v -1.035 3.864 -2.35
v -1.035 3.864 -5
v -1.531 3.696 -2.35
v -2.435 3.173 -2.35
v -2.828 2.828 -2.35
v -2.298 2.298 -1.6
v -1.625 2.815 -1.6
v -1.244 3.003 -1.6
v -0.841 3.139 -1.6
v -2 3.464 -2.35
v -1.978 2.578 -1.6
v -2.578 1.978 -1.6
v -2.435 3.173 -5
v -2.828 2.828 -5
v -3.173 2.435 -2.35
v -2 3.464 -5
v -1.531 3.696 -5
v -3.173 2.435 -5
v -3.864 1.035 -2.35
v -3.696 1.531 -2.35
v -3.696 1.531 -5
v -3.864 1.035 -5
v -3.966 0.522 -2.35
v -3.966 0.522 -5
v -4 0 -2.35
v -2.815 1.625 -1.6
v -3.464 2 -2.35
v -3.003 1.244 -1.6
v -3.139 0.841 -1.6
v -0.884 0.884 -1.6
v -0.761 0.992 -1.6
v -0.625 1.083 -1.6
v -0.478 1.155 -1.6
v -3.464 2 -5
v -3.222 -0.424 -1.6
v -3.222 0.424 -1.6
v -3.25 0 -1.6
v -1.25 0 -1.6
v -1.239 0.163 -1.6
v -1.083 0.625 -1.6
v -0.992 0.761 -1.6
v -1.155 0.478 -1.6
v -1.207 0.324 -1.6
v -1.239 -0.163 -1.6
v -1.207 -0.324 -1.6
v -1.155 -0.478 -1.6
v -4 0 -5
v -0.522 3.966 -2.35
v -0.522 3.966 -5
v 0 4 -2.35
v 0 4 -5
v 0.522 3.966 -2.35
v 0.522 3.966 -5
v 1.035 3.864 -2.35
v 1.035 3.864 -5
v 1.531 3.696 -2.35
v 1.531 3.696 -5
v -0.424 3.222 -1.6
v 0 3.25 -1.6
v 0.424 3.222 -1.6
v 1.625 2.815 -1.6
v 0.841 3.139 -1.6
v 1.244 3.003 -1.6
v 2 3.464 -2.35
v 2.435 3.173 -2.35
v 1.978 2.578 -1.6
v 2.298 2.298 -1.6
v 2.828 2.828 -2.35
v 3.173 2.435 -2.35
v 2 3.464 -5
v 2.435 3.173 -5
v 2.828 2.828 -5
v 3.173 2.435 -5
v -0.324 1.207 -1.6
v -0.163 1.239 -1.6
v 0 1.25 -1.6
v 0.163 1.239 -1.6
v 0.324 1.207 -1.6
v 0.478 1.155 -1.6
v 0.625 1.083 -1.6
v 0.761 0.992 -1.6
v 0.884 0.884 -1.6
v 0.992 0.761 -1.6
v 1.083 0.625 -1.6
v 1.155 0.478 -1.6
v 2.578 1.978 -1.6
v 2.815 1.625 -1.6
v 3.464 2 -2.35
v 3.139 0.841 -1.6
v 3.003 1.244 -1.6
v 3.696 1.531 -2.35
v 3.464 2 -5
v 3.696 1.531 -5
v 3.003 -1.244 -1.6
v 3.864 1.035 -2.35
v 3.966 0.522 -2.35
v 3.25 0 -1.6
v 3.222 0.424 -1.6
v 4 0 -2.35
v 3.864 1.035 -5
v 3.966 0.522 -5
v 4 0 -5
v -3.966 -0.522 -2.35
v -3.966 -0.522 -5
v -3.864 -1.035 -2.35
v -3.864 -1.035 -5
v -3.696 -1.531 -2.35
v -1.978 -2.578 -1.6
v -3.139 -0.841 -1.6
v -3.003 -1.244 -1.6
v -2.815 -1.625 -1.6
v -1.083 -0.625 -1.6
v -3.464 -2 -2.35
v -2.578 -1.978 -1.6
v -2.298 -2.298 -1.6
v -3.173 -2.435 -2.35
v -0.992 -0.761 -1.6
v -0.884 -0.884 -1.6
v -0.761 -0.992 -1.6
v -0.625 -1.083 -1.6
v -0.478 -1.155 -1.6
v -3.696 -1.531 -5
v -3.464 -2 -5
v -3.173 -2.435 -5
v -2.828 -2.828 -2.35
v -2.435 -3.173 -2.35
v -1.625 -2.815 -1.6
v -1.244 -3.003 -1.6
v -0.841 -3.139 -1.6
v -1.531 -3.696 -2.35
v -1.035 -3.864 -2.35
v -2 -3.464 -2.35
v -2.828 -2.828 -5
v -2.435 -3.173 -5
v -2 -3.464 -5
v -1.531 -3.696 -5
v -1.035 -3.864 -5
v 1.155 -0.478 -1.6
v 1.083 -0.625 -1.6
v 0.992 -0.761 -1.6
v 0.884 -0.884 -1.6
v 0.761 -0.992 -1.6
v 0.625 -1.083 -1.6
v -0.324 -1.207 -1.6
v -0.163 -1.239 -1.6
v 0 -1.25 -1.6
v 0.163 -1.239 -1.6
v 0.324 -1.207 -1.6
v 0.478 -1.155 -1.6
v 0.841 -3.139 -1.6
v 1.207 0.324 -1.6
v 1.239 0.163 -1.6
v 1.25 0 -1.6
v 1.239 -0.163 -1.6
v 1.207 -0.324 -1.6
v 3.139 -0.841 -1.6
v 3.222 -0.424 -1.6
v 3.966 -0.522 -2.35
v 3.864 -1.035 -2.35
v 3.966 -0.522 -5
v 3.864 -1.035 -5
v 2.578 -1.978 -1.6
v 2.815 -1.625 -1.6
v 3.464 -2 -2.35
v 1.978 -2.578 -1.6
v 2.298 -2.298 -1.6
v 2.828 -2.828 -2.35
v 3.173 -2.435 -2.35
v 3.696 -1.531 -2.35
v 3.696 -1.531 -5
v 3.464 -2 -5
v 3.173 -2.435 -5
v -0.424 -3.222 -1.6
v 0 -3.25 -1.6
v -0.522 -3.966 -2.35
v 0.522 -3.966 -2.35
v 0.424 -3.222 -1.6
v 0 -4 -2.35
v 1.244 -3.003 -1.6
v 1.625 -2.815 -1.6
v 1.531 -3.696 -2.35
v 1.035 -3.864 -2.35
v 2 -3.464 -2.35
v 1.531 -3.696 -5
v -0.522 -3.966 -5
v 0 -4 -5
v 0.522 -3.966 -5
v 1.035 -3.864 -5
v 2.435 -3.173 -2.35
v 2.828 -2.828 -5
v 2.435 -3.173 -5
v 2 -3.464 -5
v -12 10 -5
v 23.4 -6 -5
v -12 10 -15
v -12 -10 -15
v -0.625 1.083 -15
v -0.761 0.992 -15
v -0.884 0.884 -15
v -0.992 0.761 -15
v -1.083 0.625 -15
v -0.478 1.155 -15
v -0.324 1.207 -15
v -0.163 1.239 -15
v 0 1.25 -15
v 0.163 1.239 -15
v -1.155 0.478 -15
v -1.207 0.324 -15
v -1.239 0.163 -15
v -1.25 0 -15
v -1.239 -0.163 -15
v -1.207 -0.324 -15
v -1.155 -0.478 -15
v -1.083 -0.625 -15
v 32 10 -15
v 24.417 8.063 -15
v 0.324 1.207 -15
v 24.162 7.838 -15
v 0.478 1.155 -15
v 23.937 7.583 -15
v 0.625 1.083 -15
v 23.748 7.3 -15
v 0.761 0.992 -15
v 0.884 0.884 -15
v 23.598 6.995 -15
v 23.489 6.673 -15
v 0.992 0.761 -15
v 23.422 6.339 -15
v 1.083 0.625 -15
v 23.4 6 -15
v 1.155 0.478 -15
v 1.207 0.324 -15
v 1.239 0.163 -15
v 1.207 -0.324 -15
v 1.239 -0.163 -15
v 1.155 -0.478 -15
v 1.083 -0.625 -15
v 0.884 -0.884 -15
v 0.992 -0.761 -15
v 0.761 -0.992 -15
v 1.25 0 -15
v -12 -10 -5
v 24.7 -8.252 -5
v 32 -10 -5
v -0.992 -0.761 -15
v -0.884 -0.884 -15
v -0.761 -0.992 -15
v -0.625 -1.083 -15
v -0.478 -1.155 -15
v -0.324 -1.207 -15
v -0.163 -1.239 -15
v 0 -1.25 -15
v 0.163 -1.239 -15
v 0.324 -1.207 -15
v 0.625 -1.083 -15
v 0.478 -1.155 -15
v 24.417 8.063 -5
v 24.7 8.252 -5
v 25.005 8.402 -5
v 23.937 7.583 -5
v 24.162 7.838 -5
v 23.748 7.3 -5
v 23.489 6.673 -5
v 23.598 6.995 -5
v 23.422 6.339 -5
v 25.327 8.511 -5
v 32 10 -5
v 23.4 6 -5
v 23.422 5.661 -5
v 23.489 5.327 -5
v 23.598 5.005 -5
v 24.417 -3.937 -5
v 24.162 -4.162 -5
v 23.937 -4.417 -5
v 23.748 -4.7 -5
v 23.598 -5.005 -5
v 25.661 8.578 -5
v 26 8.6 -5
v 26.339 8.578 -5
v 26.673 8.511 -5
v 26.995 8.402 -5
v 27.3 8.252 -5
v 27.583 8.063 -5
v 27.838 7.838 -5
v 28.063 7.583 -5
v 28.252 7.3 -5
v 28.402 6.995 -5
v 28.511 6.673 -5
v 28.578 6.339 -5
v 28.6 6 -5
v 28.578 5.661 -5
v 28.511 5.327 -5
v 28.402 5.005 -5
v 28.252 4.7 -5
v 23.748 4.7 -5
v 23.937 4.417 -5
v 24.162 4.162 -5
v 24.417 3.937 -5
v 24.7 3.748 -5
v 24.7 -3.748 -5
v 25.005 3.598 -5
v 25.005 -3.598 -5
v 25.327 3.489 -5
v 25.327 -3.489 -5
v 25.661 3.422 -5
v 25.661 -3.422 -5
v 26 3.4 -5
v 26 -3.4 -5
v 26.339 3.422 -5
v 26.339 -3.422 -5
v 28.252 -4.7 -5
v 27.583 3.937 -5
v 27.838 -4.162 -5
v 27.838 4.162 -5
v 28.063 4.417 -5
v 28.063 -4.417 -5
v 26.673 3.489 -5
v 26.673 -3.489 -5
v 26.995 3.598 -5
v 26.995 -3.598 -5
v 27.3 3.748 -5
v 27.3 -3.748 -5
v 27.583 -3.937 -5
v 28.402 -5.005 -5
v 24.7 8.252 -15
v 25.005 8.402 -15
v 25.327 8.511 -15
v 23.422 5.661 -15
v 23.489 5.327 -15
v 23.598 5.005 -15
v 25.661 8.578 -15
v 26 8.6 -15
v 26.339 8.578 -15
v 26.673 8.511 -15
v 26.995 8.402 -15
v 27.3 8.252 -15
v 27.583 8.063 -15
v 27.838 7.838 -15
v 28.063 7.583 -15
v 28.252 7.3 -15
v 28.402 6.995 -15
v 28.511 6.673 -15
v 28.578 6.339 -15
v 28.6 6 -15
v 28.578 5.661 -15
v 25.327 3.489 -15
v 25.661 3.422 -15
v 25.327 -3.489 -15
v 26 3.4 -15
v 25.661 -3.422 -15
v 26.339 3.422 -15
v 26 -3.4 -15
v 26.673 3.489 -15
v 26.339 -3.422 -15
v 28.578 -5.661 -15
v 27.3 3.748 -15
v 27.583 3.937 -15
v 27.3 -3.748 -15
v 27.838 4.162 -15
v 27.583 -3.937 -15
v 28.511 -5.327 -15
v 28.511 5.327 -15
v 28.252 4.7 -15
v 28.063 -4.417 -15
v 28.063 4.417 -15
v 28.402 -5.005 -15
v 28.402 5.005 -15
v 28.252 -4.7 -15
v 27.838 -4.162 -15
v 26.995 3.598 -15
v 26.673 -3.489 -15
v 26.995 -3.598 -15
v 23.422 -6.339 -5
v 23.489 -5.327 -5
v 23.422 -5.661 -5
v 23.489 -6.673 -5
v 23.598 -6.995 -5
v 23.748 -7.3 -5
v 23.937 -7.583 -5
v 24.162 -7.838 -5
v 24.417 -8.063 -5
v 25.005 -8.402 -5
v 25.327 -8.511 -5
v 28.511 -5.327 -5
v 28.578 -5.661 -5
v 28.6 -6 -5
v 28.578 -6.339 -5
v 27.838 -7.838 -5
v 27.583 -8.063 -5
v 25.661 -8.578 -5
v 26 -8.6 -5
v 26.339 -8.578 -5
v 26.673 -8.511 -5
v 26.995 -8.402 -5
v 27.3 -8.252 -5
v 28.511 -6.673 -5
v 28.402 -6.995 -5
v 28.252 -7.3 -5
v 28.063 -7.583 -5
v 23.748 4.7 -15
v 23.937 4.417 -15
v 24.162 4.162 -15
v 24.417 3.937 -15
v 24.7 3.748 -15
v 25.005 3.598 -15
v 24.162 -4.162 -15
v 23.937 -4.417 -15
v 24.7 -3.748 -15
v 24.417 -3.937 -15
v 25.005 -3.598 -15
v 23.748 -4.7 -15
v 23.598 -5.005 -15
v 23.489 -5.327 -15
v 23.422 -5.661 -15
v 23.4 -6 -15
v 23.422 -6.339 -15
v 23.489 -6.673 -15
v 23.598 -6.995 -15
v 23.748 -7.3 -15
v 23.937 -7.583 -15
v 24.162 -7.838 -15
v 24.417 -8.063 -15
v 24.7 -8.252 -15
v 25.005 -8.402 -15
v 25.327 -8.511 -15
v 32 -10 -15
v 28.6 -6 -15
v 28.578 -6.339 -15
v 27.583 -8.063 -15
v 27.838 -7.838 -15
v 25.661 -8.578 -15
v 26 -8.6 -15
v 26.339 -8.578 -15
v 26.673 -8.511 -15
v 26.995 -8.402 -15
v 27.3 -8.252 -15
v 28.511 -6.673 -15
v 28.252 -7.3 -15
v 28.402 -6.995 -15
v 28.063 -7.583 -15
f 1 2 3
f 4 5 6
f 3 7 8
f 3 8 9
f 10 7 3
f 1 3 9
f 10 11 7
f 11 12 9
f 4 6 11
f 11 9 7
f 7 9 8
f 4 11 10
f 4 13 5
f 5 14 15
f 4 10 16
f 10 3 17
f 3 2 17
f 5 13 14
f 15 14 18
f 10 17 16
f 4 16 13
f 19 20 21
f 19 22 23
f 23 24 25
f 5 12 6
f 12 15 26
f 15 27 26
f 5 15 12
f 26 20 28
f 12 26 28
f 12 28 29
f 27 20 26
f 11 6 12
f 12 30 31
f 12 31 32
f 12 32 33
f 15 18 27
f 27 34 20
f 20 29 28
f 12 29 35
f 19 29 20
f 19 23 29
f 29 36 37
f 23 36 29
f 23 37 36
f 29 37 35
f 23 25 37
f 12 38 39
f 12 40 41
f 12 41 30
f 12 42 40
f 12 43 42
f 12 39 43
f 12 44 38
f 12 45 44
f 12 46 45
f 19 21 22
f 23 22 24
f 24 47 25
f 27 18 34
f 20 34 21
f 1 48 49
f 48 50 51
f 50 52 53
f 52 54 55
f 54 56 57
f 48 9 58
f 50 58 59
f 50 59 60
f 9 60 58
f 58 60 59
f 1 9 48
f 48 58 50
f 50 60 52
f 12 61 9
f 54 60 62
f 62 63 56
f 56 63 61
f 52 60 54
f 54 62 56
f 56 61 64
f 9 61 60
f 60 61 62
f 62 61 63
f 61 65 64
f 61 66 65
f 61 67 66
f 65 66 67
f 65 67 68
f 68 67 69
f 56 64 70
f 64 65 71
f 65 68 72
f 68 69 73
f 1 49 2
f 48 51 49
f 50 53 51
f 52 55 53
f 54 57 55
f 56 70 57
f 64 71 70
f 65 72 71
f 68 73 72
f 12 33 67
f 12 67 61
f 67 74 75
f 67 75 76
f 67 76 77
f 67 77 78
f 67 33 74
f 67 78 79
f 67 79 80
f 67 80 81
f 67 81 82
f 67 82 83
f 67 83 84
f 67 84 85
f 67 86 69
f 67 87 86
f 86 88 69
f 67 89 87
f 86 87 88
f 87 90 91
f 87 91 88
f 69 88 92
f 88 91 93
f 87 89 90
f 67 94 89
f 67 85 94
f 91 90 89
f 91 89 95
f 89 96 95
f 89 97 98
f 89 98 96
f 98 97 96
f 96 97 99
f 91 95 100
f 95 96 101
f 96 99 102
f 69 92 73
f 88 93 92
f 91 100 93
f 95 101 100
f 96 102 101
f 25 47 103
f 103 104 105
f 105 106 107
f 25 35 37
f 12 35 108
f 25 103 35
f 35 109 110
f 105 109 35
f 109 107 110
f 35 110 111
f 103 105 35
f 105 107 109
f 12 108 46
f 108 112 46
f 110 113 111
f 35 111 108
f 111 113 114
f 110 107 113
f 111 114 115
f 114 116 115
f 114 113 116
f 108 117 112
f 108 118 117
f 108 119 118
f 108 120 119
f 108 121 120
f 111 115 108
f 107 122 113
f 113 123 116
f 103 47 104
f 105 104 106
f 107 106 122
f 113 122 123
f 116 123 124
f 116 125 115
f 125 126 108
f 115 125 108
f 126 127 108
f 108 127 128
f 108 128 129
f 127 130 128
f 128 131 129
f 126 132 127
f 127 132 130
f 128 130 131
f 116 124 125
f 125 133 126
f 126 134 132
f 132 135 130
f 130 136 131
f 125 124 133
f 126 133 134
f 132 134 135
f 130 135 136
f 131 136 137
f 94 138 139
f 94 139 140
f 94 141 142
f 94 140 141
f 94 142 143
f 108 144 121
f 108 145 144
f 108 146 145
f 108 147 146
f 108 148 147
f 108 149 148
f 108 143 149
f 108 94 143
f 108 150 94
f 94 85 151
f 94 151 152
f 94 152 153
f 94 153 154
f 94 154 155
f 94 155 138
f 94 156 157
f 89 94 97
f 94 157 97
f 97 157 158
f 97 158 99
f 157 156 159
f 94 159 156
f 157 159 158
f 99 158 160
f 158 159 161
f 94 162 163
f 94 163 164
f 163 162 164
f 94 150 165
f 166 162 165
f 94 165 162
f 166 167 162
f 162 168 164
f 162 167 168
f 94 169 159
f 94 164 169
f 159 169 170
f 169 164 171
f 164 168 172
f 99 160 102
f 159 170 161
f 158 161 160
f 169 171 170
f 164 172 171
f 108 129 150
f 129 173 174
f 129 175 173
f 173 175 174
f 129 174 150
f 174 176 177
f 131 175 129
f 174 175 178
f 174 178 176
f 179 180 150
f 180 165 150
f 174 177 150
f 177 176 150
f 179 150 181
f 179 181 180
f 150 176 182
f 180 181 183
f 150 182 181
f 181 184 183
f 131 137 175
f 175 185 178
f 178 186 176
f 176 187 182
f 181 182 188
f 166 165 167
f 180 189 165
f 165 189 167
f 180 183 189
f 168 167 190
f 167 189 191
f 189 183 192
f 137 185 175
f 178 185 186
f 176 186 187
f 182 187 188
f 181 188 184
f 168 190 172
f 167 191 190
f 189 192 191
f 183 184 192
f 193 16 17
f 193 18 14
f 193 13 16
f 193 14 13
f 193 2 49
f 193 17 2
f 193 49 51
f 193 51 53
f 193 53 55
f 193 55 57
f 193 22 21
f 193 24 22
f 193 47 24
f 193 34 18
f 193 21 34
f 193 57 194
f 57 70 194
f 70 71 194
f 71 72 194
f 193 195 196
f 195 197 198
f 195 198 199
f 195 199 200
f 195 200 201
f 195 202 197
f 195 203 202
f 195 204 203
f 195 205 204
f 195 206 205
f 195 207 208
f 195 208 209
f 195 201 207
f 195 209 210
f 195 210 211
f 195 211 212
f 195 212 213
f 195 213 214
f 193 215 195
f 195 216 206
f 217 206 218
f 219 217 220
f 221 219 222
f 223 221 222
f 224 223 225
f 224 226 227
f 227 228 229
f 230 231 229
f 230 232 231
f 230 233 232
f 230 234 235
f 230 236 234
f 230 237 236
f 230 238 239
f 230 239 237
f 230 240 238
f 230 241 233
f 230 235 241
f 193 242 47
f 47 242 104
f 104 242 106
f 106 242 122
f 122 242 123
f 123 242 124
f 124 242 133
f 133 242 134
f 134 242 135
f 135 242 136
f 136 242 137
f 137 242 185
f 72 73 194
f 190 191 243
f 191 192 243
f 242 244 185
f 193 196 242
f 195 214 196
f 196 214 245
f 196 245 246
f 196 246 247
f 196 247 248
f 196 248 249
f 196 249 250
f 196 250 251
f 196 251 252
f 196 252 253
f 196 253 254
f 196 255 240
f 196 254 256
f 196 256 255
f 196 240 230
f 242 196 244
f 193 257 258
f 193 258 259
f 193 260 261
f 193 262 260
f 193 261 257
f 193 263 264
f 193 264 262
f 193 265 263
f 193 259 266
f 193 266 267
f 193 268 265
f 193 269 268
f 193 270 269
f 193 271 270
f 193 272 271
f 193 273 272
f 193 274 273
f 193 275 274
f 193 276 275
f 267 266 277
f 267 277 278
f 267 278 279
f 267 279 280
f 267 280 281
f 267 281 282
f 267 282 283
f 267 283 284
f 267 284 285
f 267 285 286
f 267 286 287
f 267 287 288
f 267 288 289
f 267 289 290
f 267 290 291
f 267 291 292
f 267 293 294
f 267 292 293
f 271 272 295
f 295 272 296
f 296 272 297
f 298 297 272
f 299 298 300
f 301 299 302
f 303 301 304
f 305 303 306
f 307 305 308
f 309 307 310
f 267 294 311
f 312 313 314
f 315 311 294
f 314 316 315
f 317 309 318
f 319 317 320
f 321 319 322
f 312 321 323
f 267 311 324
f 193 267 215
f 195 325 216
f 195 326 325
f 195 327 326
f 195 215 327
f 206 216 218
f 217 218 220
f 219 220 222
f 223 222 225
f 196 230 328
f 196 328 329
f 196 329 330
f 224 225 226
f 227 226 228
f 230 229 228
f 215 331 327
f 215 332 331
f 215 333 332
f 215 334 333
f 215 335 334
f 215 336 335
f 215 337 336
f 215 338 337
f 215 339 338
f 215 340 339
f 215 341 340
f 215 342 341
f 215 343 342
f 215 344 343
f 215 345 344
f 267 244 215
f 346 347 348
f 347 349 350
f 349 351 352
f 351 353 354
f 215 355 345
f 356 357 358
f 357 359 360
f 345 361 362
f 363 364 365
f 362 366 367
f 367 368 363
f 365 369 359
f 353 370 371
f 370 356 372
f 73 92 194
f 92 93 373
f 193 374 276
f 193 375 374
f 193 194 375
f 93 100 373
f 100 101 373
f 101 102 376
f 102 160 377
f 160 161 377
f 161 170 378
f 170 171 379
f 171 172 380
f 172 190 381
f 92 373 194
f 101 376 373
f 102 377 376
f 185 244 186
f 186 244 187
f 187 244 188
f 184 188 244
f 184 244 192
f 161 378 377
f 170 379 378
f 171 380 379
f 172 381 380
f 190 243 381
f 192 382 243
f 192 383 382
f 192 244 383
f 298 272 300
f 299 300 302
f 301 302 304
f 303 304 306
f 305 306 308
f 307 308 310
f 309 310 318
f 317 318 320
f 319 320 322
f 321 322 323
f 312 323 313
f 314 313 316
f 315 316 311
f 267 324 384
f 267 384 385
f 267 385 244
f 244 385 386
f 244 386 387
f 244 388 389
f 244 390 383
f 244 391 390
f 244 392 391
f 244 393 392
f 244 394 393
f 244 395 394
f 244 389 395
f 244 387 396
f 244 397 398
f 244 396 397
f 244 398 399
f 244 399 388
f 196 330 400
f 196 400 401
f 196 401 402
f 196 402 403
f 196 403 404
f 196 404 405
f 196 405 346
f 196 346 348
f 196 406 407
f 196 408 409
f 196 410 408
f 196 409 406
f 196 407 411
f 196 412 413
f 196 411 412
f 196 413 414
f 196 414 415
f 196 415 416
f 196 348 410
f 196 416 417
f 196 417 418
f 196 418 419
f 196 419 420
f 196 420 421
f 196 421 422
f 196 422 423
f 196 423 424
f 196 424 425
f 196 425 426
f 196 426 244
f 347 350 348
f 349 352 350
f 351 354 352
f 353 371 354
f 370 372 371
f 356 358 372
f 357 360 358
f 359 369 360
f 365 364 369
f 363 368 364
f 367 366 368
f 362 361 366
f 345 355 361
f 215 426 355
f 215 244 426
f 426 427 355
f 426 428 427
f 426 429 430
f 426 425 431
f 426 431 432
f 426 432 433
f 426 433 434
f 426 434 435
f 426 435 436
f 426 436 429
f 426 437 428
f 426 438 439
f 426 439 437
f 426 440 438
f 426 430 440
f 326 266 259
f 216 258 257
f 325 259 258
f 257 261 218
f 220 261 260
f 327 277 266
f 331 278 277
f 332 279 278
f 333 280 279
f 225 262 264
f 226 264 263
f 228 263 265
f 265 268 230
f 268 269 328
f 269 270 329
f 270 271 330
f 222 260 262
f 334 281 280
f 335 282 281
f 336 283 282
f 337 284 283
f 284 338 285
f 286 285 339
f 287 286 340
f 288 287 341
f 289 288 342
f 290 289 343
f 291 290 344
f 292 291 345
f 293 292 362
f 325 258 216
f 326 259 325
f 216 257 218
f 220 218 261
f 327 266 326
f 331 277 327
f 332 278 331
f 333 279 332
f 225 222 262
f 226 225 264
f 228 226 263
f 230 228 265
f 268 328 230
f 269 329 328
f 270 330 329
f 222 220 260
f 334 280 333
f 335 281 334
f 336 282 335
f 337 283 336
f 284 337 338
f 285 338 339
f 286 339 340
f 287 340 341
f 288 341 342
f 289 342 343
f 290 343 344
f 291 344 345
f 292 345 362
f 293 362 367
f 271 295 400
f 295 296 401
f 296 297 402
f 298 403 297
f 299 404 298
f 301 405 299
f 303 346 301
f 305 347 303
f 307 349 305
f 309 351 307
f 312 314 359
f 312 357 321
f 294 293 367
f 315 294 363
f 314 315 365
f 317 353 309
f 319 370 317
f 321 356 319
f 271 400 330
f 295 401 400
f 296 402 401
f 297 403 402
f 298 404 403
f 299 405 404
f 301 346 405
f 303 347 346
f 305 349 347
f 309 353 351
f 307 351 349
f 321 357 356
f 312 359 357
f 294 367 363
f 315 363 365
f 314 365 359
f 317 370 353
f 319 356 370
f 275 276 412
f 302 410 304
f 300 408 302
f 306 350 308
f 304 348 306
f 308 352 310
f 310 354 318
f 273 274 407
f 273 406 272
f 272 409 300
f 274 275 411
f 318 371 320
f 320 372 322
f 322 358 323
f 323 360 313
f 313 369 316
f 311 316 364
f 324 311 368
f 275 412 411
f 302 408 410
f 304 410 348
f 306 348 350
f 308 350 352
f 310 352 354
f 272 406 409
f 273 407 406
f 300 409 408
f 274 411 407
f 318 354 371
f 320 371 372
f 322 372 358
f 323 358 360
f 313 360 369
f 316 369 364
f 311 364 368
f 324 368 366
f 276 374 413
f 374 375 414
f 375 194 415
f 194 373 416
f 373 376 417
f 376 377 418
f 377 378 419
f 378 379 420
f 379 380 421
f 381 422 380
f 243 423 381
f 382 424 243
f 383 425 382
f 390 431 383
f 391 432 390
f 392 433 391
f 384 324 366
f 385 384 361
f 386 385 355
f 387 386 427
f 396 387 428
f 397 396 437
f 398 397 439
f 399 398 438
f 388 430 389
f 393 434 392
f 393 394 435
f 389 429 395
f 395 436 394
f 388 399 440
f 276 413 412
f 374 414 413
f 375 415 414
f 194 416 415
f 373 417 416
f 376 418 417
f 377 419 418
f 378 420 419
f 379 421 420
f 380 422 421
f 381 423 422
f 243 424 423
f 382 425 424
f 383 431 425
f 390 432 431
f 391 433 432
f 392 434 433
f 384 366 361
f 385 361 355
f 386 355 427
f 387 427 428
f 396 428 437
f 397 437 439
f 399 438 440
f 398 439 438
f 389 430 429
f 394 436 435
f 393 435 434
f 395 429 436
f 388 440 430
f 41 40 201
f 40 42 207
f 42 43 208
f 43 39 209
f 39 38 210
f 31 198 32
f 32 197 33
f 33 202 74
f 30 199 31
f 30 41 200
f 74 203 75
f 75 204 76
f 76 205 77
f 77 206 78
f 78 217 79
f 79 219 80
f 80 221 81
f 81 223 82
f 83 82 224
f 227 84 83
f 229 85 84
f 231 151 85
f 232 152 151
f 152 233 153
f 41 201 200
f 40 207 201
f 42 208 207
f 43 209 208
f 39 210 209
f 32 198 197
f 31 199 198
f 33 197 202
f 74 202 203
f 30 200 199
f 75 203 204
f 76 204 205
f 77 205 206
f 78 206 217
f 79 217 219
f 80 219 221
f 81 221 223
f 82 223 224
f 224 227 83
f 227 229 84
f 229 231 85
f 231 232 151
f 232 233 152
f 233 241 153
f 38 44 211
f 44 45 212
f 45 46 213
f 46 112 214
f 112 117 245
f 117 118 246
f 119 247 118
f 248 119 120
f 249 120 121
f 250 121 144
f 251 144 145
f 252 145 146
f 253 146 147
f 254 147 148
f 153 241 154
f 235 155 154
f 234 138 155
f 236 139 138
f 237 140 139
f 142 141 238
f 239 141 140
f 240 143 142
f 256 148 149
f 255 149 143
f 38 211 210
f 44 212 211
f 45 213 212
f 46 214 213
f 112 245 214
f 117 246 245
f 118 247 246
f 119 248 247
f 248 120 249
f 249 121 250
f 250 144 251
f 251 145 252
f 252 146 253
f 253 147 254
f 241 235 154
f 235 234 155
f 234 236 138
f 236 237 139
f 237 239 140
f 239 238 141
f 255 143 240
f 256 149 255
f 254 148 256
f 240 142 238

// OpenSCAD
// Die arm for an M3 set-screw die (1.5 mm socket). Tap M3 through.
include <../cad/punch_rig_v3_003.scad>
PART = "arm_print";
